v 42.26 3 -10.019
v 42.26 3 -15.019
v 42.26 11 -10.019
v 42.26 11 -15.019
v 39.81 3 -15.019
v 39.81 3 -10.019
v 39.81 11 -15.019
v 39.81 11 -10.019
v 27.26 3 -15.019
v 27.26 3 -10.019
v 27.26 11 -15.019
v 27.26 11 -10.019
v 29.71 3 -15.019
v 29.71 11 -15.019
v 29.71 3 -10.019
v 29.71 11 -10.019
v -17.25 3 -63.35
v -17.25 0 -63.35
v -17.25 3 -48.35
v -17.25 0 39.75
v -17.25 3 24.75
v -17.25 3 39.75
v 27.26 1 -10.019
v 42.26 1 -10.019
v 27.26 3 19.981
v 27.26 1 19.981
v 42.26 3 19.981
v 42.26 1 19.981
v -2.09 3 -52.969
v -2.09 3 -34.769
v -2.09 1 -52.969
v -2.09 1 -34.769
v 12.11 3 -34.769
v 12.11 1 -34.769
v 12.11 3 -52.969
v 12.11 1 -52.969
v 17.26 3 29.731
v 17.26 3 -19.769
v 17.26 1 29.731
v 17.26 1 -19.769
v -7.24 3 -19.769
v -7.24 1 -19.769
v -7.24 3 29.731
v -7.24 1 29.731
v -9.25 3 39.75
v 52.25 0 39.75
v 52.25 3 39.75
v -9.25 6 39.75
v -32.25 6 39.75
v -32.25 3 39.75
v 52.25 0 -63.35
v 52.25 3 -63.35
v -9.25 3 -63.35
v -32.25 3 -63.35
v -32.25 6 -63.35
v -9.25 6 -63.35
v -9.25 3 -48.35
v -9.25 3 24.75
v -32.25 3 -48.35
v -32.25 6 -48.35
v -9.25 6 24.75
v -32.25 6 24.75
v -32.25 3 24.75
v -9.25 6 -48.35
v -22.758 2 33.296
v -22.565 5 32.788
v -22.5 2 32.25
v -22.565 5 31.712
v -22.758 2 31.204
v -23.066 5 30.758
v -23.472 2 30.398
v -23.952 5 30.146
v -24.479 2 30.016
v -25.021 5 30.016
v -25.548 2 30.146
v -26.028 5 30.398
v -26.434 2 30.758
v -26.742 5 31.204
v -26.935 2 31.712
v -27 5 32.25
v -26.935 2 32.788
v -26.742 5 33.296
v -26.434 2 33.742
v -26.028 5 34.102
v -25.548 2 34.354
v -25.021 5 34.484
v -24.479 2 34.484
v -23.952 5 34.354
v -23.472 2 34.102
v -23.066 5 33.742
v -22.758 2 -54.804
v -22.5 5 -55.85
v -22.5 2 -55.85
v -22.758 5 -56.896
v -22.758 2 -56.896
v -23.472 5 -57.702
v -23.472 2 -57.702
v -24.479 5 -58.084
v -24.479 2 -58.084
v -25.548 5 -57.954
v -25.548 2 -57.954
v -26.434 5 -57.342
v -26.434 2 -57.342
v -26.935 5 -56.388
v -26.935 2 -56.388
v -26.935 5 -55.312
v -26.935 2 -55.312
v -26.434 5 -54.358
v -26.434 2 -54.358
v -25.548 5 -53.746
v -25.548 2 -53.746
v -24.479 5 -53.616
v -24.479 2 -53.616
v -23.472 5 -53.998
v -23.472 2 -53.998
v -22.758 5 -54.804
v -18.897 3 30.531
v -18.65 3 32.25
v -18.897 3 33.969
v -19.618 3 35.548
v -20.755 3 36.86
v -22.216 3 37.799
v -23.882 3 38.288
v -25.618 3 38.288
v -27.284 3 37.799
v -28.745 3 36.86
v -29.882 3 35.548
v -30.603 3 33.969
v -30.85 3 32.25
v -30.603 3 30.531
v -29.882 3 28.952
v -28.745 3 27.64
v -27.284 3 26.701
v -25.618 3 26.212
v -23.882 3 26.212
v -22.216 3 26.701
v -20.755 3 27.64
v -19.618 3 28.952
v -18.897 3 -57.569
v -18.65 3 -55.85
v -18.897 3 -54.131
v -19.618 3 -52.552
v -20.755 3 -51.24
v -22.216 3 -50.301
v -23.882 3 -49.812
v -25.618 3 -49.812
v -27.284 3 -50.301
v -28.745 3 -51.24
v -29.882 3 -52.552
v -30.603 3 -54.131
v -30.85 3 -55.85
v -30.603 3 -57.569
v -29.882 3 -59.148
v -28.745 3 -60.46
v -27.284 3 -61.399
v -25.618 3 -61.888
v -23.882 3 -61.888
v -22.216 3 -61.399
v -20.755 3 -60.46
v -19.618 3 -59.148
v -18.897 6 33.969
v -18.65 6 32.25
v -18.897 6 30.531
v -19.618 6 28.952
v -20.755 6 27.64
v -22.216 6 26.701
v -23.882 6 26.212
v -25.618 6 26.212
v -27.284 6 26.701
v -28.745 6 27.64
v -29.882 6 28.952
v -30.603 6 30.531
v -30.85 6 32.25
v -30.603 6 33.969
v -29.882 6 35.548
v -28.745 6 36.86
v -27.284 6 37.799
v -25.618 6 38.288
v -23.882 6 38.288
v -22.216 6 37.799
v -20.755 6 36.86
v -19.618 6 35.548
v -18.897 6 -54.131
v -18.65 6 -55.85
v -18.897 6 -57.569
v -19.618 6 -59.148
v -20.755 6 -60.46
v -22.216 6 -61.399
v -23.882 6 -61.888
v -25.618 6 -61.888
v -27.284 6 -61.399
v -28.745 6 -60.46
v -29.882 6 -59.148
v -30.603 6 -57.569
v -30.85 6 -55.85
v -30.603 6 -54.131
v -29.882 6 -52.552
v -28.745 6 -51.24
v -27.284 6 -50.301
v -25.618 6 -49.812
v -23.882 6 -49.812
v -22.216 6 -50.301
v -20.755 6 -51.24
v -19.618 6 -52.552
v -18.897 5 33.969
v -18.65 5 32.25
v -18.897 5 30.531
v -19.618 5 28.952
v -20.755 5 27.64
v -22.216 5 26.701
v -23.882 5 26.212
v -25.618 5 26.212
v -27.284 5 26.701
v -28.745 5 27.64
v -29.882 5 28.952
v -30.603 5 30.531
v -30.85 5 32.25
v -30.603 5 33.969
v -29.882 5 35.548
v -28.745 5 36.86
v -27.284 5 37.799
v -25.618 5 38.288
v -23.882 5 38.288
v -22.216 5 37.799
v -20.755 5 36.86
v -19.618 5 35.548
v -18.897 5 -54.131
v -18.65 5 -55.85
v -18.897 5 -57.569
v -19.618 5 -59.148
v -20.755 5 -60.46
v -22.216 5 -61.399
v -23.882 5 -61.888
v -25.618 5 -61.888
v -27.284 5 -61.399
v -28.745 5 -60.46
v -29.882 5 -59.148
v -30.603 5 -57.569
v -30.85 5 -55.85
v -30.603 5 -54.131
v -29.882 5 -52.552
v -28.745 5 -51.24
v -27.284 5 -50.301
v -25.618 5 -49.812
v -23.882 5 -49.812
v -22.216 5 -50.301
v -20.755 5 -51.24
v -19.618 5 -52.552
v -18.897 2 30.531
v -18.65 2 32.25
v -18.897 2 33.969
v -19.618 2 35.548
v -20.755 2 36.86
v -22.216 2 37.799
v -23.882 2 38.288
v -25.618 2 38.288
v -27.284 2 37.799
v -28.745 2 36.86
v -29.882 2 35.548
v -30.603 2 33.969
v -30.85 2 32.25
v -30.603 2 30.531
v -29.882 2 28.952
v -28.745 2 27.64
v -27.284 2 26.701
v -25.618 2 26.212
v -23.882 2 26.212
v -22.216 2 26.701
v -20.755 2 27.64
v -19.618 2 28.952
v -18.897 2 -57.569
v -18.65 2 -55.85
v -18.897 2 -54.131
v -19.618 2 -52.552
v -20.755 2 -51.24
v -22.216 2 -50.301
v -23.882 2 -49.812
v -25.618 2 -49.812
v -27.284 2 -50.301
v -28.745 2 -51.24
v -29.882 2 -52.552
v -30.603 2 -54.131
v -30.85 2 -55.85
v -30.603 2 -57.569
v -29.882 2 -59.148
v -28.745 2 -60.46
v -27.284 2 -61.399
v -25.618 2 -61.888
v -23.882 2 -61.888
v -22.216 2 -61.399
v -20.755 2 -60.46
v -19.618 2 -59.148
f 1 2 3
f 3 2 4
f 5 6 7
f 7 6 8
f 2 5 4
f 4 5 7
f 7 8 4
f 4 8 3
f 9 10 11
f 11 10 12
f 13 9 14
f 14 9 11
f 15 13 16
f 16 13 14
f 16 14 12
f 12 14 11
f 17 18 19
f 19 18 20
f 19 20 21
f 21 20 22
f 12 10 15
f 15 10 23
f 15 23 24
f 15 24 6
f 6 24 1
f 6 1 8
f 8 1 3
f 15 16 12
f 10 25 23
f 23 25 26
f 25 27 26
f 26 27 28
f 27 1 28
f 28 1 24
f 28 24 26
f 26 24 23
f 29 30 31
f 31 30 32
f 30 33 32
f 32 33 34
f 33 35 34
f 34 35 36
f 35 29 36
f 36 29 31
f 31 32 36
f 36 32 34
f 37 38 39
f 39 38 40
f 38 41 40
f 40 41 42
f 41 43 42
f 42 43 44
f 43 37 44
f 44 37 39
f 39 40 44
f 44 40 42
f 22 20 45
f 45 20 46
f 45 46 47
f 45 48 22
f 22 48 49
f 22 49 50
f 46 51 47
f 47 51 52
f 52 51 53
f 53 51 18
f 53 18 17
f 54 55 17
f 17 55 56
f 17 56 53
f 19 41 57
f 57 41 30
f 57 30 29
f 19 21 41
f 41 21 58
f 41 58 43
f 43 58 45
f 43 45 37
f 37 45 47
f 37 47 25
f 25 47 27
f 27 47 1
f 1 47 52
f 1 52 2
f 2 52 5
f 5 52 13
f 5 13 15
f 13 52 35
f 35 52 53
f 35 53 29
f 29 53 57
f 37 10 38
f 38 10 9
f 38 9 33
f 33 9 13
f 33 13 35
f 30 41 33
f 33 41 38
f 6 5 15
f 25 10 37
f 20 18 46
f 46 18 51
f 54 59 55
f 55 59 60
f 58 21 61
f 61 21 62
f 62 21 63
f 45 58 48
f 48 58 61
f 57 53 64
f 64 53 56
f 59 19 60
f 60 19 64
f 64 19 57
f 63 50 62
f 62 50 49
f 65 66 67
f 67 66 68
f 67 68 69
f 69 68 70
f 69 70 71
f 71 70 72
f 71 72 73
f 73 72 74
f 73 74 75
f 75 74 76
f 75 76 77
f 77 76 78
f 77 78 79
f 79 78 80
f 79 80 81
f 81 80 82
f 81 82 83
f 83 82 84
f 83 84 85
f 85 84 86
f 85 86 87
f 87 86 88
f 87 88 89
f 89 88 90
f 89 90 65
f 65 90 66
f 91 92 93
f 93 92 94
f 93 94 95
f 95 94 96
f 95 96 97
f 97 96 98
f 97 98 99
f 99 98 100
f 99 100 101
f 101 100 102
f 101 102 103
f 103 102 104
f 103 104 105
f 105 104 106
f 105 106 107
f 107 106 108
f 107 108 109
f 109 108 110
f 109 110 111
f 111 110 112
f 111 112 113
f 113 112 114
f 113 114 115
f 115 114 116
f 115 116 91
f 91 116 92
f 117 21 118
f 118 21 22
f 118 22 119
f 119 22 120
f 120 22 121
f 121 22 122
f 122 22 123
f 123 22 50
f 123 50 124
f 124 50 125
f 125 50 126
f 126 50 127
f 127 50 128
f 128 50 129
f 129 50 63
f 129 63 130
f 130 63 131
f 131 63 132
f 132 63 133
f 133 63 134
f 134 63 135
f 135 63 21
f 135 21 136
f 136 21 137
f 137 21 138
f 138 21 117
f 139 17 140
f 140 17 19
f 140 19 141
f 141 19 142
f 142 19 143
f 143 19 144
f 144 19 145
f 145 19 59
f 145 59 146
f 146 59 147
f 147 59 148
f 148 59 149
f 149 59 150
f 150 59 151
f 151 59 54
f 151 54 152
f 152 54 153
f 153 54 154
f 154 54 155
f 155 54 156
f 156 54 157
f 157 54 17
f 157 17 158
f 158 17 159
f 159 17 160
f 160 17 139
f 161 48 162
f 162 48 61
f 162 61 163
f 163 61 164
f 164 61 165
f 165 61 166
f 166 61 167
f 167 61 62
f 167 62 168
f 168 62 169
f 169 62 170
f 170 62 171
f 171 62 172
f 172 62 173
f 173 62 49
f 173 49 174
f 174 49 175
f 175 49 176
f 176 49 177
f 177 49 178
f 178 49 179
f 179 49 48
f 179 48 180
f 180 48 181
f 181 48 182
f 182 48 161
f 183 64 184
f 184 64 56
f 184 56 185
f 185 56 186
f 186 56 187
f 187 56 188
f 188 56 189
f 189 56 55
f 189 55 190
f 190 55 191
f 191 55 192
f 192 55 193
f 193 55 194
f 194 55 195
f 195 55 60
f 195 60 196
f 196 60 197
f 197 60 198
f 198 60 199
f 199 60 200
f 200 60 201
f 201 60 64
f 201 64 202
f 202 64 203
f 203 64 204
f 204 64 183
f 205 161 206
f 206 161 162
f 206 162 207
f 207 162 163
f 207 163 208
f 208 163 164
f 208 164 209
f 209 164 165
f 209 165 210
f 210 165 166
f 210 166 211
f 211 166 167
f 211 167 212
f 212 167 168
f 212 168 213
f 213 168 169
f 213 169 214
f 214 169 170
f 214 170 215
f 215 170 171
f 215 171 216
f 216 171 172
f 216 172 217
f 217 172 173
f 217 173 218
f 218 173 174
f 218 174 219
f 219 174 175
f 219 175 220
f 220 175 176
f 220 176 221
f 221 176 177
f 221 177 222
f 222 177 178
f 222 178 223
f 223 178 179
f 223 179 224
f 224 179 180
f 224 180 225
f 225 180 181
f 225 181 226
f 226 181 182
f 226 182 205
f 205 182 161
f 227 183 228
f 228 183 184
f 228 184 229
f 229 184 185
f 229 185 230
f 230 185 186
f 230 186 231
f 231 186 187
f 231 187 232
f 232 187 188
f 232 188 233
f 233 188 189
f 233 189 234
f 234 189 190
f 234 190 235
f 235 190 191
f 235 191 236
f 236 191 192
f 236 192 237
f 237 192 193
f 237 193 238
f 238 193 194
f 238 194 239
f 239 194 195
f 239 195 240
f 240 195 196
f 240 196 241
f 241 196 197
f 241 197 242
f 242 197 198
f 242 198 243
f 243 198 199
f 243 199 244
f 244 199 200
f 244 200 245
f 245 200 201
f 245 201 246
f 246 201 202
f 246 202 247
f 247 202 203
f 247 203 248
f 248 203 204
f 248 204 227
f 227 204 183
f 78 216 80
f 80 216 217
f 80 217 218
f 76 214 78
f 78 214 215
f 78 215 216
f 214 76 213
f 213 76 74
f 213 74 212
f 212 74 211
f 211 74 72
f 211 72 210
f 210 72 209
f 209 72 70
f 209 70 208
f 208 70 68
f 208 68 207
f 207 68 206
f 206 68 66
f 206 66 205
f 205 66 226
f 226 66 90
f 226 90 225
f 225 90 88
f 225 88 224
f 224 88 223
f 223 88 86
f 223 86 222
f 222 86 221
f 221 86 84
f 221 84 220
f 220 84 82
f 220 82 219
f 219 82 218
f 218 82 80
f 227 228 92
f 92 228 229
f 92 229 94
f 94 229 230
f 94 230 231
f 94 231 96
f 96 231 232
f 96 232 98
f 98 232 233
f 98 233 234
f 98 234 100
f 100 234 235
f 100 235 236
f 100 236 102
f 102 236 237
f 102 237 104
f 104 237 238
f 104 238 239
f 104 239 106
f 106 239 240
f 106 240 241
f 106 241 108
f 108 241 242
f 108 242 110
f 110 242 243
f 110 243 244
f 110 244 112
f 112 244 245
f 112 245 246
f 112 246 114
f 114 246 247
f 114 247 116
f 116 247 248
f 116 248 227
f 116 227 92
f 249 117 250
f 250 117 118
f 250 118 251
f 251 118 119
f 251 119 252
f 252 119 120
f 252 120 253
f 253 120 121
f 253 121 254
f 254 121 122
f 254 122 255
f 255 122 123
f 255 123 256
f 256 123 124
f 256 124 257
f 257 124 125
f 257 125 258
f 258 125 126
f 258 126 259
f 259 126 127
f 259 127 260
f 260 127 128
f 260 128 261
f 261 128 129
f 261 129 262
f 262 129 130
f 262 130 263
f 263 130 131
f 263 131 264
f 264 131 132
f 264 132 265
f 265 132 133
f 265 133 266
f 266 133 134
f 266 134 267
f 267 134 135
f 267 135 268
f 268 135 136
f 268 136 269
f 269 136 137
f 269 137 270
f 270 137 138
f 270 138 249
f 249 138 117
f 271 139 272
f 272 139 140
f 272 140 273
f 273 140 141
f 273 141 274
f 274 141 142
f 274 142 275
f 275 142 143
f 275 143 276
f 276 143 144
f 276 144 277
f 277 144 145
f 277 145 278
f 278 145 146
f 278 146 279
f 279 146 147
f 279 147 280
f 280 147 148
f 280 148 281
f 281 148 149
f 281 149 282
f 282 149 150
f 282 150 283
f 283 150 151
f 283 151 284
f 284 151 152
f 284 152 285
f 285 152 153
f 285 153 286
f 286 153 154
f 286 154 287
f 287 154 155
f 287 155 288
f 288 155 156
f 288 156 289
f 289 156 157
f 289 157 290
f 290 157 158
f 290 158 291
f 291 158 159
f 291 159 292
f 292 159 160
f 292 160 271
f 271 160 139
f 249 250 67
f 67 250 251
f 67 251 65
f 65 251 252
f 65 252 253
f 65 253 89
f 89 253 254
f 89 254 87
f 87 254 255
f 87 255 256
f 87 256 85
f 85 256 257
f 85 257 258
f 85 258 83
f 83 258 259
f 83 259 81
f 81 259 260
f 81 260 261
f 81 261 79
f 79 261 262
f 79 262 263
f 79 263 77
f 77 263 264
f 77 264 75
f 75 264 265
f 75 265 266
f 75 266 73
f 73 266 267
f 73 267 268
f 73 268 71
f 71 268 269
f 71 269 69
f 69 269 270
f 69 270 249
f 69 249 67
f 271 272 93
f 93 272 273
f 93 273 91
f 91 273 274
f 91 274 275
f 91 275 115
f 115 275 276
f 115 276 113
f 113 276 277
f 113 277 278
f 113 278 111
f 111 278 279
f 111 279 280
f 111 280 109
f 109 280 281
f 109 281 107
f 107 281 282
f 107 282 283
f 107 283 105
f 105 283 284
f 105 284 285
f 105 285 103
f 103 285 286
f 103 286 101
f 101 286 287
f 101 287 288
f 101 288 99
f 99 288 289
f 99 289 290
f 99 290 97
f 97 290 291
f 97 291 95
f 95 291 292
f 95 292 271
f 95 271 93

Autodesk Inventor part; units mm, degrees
ref_plane "YZ Plane" through (0, 0, 0) normal (1, 0, 0) x (0, 1, 0)
ref_plane "XZ Plane" through (0, 0, 0) normal (0, 1, 0) x (-1, 0, 0)
ref_plane "XY Plane" through (0, 0, 0) normal (0, 0, 1) x (1, 0, 0)
sketch "Sketch1" plane through (0, 0, 0) normal (0, 1, 0) x (-1, 0, 0)
  line L0 (7.25, 29.75) -> (-17.25, 29.75)
  line L1 (-17.25, 29.75) -> (-17.25, -19.75)
  line L2 (-17.25, -19.75) -> (7.25, -19.75)
  line L3 (7.25, -19.75) -> (7.25, 29.75)
  line L4 (7.25, 29.75) -> (-17.25, -19.75) construction
  line L5 (-17.25, 29.75) -> (7.25, -19.75) construction
  line L6 (-27.25, 20) -> (-42.25, 20)
  line L7 (-42.25, 20) -> (-42.25, -10)
  line L8 (-42.25, -10) -> (-27.25, -10)
  line L9 (-27.25, -10) -> (-27.25, 20)
  line L10 (-27.25, 20) -> (-42.25, -10) construction
  line L11 (-42.25, 20) -> (-27.25, -10) construction
  line L12 (2.1, -34.75) -> (-12.1, -34.75)
  line L13 (-12.1, -34.75) -> (-12.1, -52.95)
  line L14 (-12.1, -52.95) -> (2.1, -52.95)
  line L15 (2.1, -52.95) -> (2.1, -34.75)
  line L16 (2.1, -34.75) -> (-12.1, -52.95) construction
  line L17 (-12.1, -34.75) -> (2.1, -52.95) construction
  line L18 (17.25, 39.75) -> (17.25, -51.55)
  line L19 (17.25, 24.75) -> (17.25, 39.75)
  line L20 (17.25, -36.55) -> (17.25, -51.55)
  line L21 (17.25, 39.75) -> (-52.25, 39.75)
  line L22 (-52.25, 39.75) -> (-52.25, -63.35)
  line L23 (-52.25, -63.35) -> (17.25, -63.35)
  line L24 (17.25, -63.35) -> (17.25, 39.75)
  point P0 (-34.75, 5)
  point P1 (-5, -43.85)
  point P2 (17.25, 0)
  dimension "d0" = 24.5
  dimension "d1" = 49.5
  dimension "d2" = 15
  dimension "d3" = 30
  dimension "d4" = 10
  dimension "d7" = 14.2
  dimension "d8" = 18.2
  dimension "d9" = 15
  dimension "d17" = 10
  dimension "d19" = 103.1
  dimension "d21" = 10
  dimension "d22" = 10
extrude "Extrusion1" add sketch "Sketch1" along normal blind 3 contours L3 L2 L1 L0 | L9 L8 L7 L6 | L15 L14 L13 L12 | L18 L24 L23 L22 L21
sketch "Sketch2" plane through (0, 3, 0) normal (0, 1, 0) x (1, 0, 0)
  line L0 (-7.2398, -29.7311) -> (17.2602, -29.7311)
  line L1 (17.2602, -29.7311) -> (17.2602, 19.7689)
  line L2 (17.2602, 19.7689) -> (-7.2398, 19.7689)
  line L3 (-7.2398, 19.7689) -> (-7.2398, -29.7311)
  line L4 (-7.2398, -29.7311) -> (17.2602, 19.7689) construction
  line L5 (17.2602, -29.7311) -> (-7.2398, 19.7689) construction
  line L6 (27.2602, -19.9811) -> (42.2602, -19.9811)
  line L7 (42.2602, -19.9811) -> (42.2602, 10.0189)
  line L8 (42.2602, 10.0189) -> (27.2602, 10.0189)
  line L9 (27.2602, 10.0189) -> (27.2602, -19.9811)
  line L10 (27.2602, -19.9811) -> (42.2602, 10.0189) construction
  line L11 (42.2602, -19.9811) -> (27.2602, 10.0189) construction
  line L12 (-2.0898, 34.7689) -> (12.1102, 34.7689)
  line L13 (12.1102, 34.7689) -> (12.1102, 52.9689)
  line L14 (12.1102, 52.9689) -> (-2.0898, 52.9689)
  line L15 (-2.0898, 52.9689) -> (-2.0898, 34.7689)
  line L16 (-2.0898, 34.7689) -> (12.1102, 52.9689) construction
  line L17 (12.1102, 34.7689) -> (-2.0898, 52.9689) construction
  line L18 (-17.2398, -39.7311) -> (-17.2398, 51.5689)
  line L19 (-17.2398, -39.7311) -> (-32.2398, -39.7311)
  line L20 (-32.2398, -39.7311) -> (-32.2398, -24.7311)
  line L21 (-32.2398, -24.7311) -> (-17.2398, -24.7311)
  line L22 (-17.2398, -24.7311) -> (-17.2398, -39.7311)
  line L23 (-17.2398, 51.5689) -> (-32.2398, 51.5689)
  line L24 (-32.2398, 51.5689) -> (-32.2398, 36.5689)
  line L25 (-32.2398, 36.5689) -> (-17.2398, 36.5689)
  line L26 (-17.2398, 36.5689) -> (-17.2398, 51.5689)
  line L27 (-17.2398, -39.7311) -> (52.2602, -39.7311)
  line L28 (52.2602, -39.7311) -> (52.2602, 63.3689)
  line L29 (52.2602, 63.3689) -> (-17.2398, 63.3689)
  line L30 (-17.2398, 63.3689) -> (-17.2398, -39.7311)
  point P0 (0, 0)
  point P1 (34.7602, -4.9811)
  point P2 (5.0102, 43.8689)
  point P3 (-17.2398, 0.0189)
  dimension "d25" = 24.5
  dimension "d26" = 49.5
  dimension "d27" = 15
  dimension "d28" = 30
  dimension "d29" = 10
  dimension "d30" = 14.2
  dimension "d31" = 18.2
  dimension "d32" = 15
  dimension "d33" = 15
  dimension "d34" = 15
  dimension "d35" = 15
  dimension "d36" = 15
  dimension "d37" = 10
  dimension "d38" = 11.8
  dimension "d39" = 103.1
  dimension "d40" = 10
  dimension "d41" = 10
extrude "Extrusion2" cut sketch "Sketch2" against normal blind 2 contours L3 L2 L1 L0 | L9 L8 L7 L6 | L15 L14 L13 L12
sketch "Sketch3" plane through (0, 3, 0) normal (0, 1, 0) x (1, 0, 0)
  point P0 (0, 0)
sketch "Sketch4" plane through (0, 3, 0) normal (0, 1, 0) x (1, 0, 0)
  line L0 (29.7102, 15.7954) -> (39.8102, 15.7954)
  line L1 (39.8102, 15.7954) -> (39.8102, 4.2425)
  line L2 (39.8102, 4.2425) -> (29.7102, 4.2425)
  line L3 (29.7102, 4.2425) -> (29.7102, 15.7954)
  line L4 (27.2602, 10.0189) -> (42.2602, 10.0189) projected
  line L5 (29.7102, 15.7954) -> (39.8102, 4.2425) construction
  line L6 (39.8102, 15.7954) -> (29.7102, 4.2425) construction
  line L7 (27.2602, 10.0189) -> (29.7102, 10.0189)
  line L8 (29.7102, 10.0189) -> (29.7102, 15.0189)
  line L9 (29.7102, 15.0189) -> (27.2602, 15.0189)
  line L10 (27.2602, 15.0189) -> (27.2602, 10.0189)
  line L11 (42.2602, 10.0189) -> (39.8102, 10.0189)
  line L12 (39.8102, 10.0189) -> (39.8102, 15.0189)
  line L13 (39.8102, 15.0189) -> (42.2602, 15.0189)
  line L14 (42.2602, 15.0189) -> (42.2602, 10.0189)
  point P0 (0, 0)
  point P1 (34.7602, 10.0189)
  point P2 (39.8102, 10.0189)
  point P3 (29.7102, 10.0189)
  dimension "d44" = 10.1
  dimension "d45" = 5
  dimension "d46" = 5
extrude "Extrusion3" add sketch "Sketch4" along normal blind 8 contours L3 L4 L10 L9 | L13 L14 L4 L1
sketch "Sketch7" plane through (0, 3, 0) normal (0, 1, 0) x (1, 0, 0)
  line L0 (-17.25, -39.75) -> (-32.25, -39.75)
  line L1 (-32.25, -39.75) -> (-32.25, -24.75)
  line L2 (-32.25, -24.75) -> (-17.25, -24.75)
  line L3 (-17.25, -24.75) -> (-17.25, -39.75)
  line L4 (52.25, 63.35) -> (-17.25, 63.35) projected
  line L5 (-17.25, 63.35) -> (-32.25, 63.35)
  line L6 (-32.25, 63.35) -> (-32.25, 48.35)
  line L7 (-32.25, 48.35) -> (-17.25, 48.35)
  line L8 (-17.25, 48.35) -> (-17.25, 63.35)
  line L9 (-17.25, -39.75) -> (-9.25, -39.75)
  line L10 (-9.25, -39.75) -> (-9.25, -24.75)
  line L11 (-9.25, -24.75) -> (-17.25, -24.75)
  line L12 (-17.25, -24.75) -> (-17.25, -39.75)
  line L13 (-17.25, 48.35) -> (-9.25, 48.35)
  line L14 (-9.25, 48.35) -> (-9.25, 63.35)
  line L15 (-9.25, 63.35) -> (-17.25, 63.35)
  line L16 (-17.25, 63.35) -> (-17.25, 48.35)
  point P0 (0, 0)
  dimension "d52" = 15
  dimension "d53" = 15
  dimension "d54" = 15
  dimension "d55" = 15
  dimension "d56" = 8
extrude "Extrusion5" add sketch "Sketch7" along normal blind 3
sketch "Sketch8" plane through (0, 6, 0) normal (0, 1, 0) x (1, 0, 0)
  line L0 (-32.25, -24.75) -> (-32.25, -39.75) projected
  line L1 (-9.25, -24.75) -> (-32.25, -24.75) projected
  line L2 (-17.25, 63.35) -> (-17.25, -39.75) projected
  line L3 (-17.25, -24.75) -> (-32.25, -24.75)
  circle A0 centre (-24.75, -32.25) radius 2.25
  circle A1 centre (-24.75, 55.85) radius 2.25
  point P0 (0, 0)
  dimension "d59" = 4.5
  dimension "d60" = 4.5
extrude "Extrusion6" cut sketch "Sketch8" against normal blind 3
sketch "Sketch9" plane through (0, 6, 0) normal (0, 1, 0) x (1, 0, 0)
  circle A0 centre (-24.75, -32.25) radius 2.25 projected
  circle A1 centre (-24.75, -32.25) radius 6.1
  circle A2 centre (-24.75, 55.85) radius 2.25 projected
  circle A3 centre (-24.75, 55.85) radius 6.1
  point P0 (0, 0)
  dimension "d63" = 12.2
  dimension "d64" = 12.2
extrude "Extrusion7" cut sketch "Sketch9" against normal blind 1 contours A0 | A1 | A3
sketch "Sketch10" plane through (0, 3, 0) normal (0, -1, 0) x (1, 0, 0)
  circle A0 centre (-24.75, 32.25) radius 2.25 projected
  circle A1 centre (-24.75, 32.25) radius 6.1
  circle A2 centre (-24.75, -55.85) radius 2.25 projected
  circle A3 centre (-24.75, -55.85) radius 6.1
  point P0 (0, 0)
  dimension "d67" = 12.2
  dimension "d68" = 12.2
extrude "Extrusion8" add sketch "Sketch10" along normal blind 1
properties part number "chrager_adapter"
